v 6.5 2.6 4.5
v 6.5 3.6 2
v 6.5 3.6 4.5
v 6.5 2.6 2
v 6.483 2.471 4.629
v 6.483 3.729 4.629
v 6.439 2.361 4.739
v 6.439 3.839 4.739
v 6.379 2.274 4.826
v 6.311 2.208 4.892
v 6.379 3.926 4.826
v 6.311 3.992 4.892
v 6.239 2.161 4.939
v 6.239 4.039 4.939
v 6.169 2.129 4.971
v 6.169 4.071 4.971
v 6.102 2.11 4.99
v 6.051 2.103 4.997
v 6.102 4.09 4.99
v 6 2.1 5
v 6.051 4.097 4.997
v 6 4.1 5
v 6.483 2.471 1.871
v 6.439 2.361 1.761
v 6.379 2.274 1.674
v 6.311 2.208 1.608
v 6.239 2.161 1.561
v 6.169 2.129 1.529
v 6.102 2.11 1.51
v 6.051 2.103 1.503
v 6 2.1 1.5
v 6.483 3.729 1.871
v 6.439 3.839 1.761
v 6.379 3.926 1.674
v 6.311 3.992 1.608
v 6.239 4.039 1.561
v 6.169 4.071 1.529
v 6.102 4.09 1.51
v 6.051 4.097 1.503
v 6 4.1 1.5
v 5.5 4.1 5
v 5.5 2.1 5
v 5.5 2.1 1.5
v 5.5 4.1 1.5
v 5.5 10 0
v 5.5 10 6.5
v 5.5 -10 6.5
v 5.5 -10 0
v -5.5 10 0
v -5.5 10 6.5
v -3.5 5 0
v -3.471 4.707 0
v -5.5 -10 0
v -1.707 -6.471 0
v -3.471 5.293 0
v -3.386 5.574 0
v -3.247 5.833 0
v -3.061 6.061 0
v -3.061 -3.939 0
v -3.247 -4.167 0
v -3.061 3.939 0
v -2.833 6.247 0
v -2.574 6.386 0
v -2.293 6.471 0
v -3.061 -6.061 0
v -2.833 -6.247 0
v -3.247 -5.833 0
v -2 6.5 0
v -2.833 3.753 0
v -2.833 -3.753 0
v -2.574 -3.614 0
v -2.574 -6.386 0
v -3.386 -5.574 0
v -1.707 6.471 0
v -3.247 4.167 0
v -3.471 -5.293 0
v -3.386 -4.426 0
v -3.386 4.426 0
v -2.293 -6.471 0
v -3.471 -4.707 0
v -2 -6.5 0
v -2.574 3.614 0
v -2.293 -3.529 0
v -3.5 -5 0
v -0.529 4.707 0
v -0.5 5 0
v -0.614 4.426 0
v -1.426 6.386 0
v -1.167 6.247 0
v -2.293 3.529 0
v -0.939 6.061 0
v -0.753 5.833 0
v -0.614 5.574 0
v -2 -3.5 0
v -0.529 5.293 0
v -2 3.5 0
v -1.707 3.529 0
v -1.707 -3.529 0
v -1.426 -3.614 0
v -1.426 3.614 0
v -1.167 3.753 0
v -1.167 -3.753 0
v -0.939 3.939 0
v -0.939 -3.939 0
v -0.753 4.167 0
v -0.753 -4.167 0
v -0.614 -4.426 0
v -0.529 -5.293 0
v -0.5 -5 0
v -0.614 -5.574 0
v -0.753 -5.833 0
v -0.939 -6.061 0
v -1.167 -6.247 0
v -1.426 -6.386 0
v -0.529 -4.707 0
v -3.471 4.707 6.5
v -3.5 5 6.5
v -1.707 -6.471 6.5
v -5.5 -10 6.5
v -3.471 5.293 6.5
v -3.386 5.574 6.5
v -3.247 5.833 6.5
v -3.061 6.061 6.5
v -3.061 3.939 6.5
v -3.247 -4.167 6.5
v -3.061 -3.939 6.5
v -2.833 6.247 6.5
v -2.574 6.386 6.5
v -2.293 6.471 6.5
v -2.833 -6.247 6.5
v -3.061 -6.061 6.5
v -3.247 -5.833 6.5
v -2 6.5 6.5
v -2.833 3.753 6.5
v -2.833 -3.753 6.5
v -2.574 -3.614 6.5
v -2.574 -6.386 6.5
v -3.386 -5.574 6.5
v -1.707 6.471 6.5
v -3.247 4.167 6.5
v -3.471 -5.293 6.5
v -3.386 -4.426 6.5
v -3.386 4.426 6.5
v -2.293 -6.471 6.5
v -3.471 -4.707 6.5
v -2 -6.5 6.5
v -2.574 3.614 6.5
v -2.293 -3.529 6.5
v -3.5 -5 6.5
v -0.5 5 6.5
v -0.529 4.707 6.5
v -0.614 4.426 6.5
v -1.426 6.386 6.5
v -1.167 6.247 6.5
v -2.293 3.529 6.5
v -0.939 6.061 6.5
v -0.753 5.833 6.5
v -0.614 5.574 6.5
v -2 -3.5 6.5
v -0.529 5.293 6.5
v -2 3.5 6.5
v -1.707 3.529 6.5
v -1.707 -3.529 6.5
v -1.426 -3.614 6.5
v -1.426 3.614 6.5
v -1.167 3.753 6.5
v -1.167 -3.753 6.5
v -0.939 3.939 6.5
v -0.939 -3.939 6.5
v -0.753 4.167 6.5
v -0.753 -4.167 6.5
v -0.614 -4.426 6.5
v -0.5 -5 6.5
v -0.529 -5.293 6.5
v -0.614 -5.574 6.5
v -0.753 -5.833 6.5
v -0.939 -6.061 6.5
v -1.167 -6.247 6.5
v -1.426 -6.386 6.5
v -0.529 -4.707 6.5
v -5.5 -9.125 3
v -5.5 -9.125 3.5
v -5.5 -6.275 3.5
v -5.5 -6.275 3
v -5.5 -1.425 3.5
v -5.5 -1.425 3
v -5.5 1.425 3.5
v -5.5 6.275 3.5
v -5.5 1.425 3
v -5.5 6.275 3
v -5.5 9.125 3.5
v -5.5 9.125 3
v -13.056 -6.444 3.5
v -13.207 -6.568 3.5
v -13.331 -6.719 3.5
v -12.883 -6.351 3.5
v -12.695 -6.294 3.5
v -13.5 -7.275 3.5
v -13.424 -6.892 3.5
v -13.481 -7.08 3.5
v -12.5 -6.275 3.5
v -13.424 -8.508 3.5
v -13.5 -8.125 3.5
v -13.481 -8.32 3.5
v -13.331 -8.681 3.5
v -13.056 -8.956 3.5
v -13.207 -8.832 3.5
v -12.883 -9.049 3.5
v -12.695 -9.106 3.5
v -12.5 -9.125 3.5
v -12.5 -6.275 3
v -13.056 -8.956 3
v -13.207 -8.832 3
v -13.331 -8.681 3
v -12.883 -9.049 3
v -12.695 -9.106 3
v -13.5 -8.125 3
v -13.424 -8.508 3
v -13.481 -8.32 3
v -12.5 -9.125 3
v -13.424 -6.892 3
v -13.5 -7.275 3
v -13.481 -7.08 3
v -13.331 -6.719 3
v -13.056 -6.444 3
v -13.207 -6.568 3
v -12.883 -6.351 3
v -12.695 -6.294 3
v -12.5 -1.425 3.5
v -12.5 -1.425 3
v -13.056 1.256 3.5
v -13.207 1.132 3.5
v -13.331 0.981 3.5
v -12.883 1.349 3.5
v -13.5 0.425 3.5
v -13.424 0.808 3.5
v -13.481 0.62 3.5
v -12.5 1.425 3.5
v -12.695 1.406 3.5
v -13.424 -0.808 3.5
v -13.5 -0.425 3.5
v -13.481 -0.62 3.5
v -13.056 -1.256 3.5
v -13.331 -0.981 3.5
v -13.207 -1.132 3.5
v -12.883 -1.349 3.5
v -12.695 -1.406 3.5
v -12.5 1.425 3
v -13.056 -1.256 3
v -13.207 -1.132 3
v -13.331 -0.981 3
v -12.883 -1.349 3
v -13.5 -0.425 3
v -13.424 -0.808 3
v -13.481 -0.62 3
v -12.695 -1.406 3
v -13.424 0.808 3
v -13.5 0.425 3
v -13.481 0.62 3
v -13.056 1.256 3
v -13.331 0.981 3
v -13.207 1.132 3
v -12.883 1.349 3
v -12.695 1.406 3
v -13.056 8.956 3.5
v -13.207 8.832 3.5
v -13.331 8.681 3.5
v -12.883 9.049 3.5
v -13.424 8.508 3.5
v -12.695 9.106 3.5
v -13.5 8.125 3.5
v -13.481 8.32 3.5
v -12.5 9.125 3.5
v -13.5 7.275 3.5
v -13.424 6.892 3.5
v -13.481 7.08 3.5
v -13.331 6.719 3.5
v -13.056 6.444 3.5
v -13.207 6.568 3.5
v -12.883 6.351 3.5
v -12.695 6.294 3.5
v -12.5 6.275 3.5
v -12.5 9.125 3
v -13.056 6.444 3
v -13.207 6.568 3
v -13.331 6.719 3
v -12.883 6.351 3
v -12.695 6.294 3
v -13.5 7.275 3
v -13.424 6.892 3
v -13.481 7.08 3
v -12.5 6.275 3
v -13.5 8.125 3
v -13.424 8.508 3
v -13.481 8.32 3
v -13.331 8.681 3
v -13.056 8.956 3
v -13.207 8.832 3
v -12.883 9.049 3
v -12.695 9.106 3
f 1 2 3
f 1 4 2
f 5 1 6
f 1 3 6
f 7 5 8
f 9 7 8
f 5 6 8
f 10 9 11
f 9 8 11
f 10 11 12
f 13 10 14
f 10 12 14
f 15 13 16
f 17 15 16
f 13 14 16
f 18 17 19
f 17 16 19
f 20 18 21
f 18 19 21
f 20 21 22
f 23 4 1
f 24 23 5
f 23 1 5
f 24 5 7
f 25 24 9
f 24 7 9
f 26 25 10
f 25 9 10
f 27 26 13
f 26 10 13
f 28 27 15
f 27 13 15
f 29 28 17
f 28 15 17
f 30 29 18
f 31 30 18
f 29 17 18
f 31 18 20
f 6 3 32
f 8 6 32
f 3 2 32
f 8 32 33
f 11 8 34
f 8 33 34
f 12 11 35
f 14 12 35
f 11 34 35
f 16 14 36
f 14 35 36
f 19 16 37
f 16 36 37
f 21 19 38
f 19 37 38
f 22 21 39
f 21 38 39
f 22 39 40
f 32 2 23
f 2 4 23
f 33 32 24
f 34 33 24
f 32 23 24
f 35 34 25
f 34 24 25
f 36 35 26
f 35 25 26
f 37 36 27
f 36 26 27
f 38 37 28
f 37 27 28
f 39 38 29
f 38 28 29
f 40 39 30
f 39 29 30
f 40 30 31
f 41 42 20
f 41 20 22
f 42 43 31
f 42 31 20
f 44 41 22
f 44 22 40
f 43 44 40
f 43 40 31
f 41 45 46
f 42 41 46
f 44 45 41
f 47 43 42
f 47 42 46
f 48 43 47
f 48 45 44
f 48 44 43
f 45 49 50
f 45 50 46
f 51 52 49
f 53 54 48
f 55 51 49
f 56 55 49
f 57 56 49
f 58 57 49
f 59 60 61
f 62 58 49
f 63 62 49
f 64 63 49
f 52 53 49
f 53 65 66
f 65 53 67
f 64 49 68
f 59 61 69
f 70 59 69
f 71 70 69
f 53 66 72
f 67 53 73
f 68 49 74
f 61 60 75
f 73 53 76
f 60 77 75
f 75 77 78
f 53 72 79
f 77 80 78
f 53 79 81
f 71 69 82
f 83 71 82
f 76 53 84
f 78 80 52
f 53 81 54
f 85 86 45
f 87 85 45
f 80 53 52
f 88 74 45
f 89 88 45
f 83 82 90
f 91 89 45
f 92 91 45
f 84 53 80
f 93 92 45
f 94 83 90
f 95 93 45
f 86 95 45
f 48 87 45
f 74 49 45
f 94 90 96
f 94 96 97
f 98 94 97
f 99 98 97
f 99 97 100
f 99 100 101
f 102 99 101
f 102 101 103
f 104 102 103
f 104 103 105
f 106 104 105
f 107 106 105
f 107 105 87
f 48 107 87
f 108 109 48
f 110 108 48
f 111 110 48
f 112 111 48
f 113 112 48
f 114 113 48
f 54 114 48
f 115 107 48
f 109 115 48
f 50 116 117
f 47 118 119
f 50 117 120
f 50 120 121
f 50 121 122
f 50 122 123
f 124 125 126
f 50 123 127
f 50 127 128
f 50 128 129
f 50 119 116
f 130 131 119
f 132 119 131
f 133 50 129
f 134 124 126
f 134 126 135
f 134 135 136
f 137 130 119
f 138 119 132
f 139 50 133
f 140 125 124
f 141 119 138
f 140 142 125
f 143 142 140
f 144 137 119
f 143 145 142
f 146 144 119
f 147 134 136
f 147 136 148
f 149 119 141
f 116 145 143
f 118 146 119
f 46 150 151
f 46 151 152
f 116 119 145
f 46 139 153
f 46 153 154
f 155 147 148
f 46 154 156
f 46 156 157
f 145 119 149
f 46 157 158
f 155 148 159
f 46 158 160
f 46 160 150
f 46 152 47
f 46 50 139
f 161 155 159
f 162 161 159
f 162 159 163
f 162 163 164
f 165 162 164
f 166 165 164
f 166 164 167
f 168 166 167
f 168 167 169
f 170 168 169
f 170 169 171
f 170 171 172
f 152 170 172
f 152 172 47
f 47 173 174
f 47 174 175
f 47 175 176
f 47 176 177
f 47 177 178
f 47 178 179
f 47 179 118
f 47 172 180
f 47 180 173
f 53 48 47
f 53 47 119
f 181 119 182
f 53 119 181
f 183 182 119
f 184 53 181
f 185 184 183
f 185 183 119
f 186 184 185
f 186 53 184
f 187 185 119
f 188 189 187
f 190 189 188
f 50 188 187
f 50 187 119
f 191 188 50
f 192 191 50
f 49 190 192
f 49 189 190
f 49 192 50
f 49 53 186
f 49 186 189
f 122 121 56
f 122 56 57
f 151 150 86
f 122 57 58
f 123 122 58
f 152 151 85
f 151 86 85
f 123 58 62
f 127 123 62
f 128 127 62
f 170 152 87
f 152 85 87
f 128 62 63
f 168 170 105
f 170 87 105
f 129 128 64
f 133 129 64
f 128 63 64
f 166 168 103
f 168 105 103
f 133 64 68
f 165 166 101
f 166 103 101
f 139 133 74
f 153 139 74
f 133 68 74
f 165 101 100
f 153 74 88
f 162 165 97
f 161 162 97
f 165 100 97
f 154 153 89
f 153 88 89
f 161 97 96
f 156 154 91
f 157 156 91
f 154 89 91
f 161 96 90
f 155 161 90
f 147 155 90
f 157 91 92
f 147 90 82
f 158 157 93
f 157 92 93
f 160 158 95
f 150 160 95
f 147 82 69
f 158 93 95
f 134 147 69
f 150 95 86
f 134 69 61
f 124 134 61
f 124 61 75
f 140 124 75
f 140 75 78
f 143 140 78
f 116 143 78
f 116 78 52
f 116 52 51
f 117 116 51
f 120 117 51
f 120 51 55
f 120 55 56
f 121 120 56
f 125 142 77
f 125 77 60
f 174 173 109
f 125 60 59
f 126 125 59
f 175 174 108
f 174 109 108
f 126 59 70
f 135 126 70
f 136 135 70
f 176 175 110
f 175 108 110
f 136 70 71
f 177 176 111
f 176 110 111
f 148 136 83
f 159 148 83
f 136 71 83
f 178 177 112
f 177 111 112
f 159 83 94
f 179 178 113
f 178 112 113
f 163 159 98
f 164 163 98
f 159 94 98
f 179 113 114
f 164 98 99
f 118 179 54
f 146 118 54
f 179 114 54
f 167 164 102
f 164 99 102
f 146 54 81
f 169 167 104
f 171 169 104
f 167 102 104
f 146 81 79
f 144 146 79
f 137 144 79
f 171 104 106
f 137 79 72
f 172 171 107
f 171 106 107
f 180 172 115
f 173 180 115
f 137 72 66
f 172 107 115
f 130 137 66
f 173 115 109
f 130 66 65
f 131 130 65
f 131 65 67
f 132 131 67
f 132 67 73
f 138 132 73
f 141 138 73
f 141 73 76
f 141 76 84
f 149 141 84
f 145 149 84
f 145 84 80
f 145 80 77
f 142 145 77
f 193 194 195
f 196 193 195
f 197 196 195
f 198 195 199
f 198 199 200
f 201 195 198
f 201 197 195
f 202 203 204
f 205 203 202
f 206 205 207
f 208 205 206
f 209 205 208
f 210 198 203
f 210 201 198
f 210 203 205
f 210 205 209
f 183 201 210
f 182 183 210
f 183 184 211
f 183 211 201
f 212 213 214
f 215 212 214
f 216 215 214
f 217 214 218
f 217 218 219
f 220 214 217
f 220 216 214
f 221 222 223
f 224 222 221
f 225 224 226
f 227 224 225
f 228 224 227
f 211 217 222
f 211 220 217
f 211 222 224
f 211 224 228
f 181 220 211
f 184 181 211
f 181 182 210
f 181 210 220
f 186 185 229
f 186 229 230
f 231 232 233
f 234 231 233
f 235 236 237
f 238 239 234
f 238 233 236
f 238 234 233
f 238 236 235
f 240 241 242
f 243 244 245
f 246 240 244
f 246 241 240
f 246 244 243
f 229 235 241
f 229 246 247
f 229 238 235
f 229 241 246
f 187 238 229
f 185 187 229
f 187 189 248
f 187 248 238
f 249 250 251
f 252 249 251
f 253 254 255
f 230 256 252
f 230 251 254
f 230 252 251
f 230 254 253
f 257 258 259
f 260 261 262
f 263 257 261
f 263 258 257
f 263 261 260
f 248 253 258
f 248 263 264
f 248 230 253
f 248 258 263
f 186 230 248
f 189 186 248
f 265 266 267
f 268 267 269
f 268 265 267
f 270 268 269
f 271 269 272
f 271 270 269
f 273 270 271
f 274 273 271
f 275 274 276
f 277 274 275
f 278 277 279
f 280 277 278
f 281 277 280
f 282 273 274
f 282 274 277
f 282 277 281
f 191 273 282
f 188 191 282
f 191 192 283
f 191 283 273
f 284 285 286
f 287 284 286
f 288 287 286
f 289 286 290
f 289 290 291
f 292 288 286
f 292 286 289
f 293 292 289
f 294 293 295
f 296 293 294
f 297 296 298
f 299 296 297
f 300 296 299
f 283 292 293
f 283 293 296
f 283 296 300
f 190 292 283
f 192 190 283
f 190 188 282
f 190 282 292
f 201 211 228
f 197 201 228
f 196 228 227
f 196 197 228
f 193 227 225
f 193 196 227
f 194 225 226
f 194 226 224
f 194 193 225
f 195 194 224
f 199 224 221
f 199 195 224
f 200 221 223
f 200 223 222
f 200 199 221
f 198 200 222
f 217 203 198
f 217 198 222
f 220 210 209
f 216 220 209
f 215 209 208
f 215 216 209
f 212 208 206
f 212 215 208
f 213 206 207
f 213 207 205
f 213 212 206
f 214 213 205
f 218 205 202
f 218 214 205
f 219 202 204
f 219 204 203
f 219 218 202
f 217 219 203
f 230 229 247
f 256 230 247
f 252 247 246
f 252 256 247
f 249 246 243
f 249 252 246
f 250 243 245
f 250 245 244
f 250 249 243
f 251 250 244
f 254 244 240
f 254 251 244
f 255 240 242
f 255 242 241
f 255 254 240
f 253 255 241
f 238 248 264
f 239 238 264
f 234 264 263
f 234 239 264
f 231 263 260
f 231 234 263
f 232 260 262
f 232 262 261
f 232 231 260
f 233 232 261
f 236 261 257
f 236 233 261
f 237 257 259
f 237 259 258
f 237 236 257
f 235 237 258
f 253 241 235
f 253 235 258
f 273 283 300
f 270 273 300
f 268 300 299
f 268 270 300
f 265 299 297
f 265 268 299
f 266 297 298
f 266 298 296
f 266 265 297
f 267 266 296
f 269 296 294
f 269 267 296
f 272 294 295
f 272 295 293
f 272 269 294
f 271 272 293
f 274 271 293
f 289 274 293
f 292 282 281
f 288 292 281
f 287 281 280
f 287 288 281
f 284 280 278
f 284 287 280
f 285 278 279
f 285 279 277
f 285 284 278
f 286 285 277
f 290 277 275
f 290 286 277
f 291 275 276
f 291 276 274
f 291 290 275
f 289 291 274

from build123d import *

# Parameters (mm, degrees)
SKETCH_W     = 11
SKETCH_H     = 20
PAD_DEPTH    = 6.5
SKETCH001_W  = 2.85
SKETCH001_H  = 0.5
PAD001_DEPTH = 8
FILLET_R     = 1
SKETCH002_W  = 2
SKETCH002_H  = 3.5
PAD002_DEPTH = 1
FILLET001_R  = 0.5
SKETCH003_R  = 1.5
POCKET_DEPTH = 6.501


with BuildPart() as part:
    # Sketch → Pad (new body)
    with BuildSketch(Plane.XY):
        Rectangle(SKETCH_W, SKETCH_H)
    extrude(amount=PAD_DEPTH)

    # Sketch001 → Pad001 (new body)
    with BuildSketch(Plane(origin=(-5.5, 0, 0), x_dir=(0, -1, 0), z_dir=(-1, 0, 0))):
        with Locations((-7.7, 3.25)):
            Rectangle(SKETCH001_W, SKETCH001_H)
        with Locations((0, 3.25)):
            Rectangle(SKETCH001_W, SKETCH001_H)
        with Locations((7.7, 3.25)):
            Rectangle(SKETCH001_W, SKETCH001_H)
    extrude(amount=PAD001_DEPTH)

    # Fillet
    fillet_edges = [part.edges().sort_by_distance(p)[0] for p in [
        (-13.5, -6.275, 3.25),
        (-13.5, -9.125, 3.25),
        (-13.5, -1.425, 3.25),
        (-13.5, 1.425, 3.25),
        (-13.5, 6.275, 3.25),
        (-13.5, 9.125, 3.25),
    ]]
    fillet(fillet_edges, radius=FILLET_R)

    # Sketch002 → Pad002 (new body)
    with BuildSketch(Plane.YZ.offset(5.5)):
        with Locations((3.1, 3.25)):
            Rectangle(SKETCH002_W, SKETCH002_H)
    extrude(amount=PAD002_DEPTH)

    # Fillet001
    fillet001_edges = [part.edges().sort_by_distance(p)[0] for p in [
        (6.5, 3.1, 5),
        (6.5, 4.1, 3.25),
        (6.5, 3.1, 1.5),
        (6.5, 2.1, 3.25),
    ]]
    fillet(fillet001_edges, radius=FILLET001_R)

    # Sketch003 → Pocket (cut, through all)
    with BuildSketch(Plane(origin=(0, 0, 0), x_dir=(1, 0, 0), z_dir=(0, 0, -1))):
        with Locations((-2, 5)):
            Circle(SKETCH003_R)
        with Locations((-2, -5)):
            Circle(SKETCH003_R)
    extrude(amount=-POCKET_DEPTH, mode=Mode.SUBTRACT)


solid = part.part
